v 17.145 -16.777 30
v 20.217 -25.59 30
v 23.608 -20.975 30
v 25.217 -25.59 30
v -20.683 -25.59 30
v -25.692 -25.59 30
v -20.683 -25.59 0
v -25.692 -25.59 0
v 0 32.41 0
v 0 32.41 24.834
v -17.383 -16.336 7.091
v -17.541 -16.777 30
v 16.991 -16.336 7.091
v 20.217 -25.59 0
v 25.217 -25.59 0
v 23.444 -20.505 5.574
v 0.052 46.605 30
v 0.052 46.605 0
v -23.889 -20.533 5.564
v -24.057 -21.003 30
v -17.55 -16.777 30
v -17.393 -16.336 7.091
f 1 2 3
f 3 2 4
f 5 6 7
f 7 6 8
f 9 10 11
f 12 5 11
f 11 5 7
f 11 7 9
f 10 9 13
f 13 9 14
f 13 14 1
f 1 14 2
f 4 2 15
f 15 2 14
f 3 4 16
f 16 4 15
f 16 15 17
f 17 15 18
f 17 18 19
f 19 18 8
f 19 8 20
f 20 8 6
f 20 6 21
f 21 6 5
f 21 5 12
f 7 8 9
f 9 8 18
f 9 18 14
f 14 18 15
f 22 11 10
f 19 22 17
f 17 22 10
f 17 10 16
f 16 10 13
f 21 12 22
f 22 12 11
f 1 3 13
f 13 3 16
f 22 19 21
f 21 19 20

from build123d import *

# Parameters (mm, degrees)
BOSS_EXTRU_1_DEPTH      = 30
ENL_V_MAT_EXTRU_1_DEPTH = 40
CHANFREIN1_SIZE         = 5
CHANFREIN1_SIZE_2       = 4.485876758
CHANFREIN1_SIZE_3       = 4.444390394


with BuildPart() as part:
    # Esquisse1 → Boss.-Extru.1 (new body)
    with BuildSketch(Plane.XY):
        Polygon((-20.683192831, -25.589578536), (0, 32.410421464), (20.216807169, -25.589578536), (25.216807169, -25.589578536), (0.052428935, 46.604508561), (-25.692471491, -25.589578536), align=None)
    extrude(amount=BOSS_EXTRU_1_DEPTH)

    # Esquisse2 → Enlèv. mat.-Extru.1 (cut, symmetric)
    with BuildSketch(Plane(origin=(0, 0, 0), x_dir=(0, 0, -1), z_dir=(1, 0, 0))):
        Polygon((-30, 46.604508561), (-7.091444924, -16.336229224), (-30, -16.777180943), align=None)
    extrude(amount=ENL_V_MAT_EXTRU_1_DEPTH, both=True, mode=Mode.SUBTRACT)

    # Chanfrein1
    # the kernel refuses this chamfer: 5, 4.485876758, 4.444390394 mm, written as the material it takes off along each edge
    with BuildSketch(Plane(origin=(-22.303983799, -16.087550115, -5.828062673), x_dir=(0.9997543804703944, 0.020937821677919046, 0.0072654217800036), z_dir=(-0.00686265654519205, -0.019244324745599332, 0.9997912581685382))) as chanfrein1_piece_1_section:
        Polygon((CHANFREIN1_SIZE * 0.999777923546, -CHANFREIN1_SIZE * 0.0210737654663), (-CHANFREIN1_SIZE_2 * 0.35560163891, -CHANFREIN1_SIZE_2 * 0.934637616571), (0, 0), align=None)
    chanfrein1_piece_1 = extrude(amount=48.757748051, mode=Mode.PRIVATE)
    chanfrein1_piece_1 = split(chanfrein1_piece_1, bisect_by=Plane(origin=(-21.319692557, -14.185364149, 7.874295789), z_dir=(0, -0.3420201433256631, 0.9396926207859105)), keep=Keep.TOP, mode=Mode.PRIVATE)
    add(chanfrein1_piece_1, mode=Mode.SUBTRACT)
    with BuildSketch(Plane(origin=(22.231789239, -17.025860313, 42.919521162), x_dir=(0.35409216493463397, -0.9349886052835225, -0.0203726954985718), z_dir=(-0.006707917430774409, 0.01924434495210566, -0.9997923079475588))) as chanfrein1_piece_2_section:
        Polygon((CHANFREIN1_SIZE_3 * 0.999645713908, CHANFREIN1_SIZE_3 * 0.0266166655786), (-CHANFREIN1_SIZE * 0.354100131597, CHANFREIN1_SIZE * 0.935207515369), (0, 0), align=None)
    chanfrein1_piece_2 = extrude(amount=48.757723993, mode=Mode.PRIVATE)
    chanfrein1_piece_2 = split(chanfrein1_piece_2, bisect_by=Plane(origin=(20.901821142, -14.176256403, 7.877610737), z_dir=(0, -0.3420201433256631, 0.9396926207859105)), keep=Keep.TOP, mode=Mode.PRIVATE)
    add(chanfrein1_piece_2, mode=Mode.SUBTRACT)


solid = part.part
